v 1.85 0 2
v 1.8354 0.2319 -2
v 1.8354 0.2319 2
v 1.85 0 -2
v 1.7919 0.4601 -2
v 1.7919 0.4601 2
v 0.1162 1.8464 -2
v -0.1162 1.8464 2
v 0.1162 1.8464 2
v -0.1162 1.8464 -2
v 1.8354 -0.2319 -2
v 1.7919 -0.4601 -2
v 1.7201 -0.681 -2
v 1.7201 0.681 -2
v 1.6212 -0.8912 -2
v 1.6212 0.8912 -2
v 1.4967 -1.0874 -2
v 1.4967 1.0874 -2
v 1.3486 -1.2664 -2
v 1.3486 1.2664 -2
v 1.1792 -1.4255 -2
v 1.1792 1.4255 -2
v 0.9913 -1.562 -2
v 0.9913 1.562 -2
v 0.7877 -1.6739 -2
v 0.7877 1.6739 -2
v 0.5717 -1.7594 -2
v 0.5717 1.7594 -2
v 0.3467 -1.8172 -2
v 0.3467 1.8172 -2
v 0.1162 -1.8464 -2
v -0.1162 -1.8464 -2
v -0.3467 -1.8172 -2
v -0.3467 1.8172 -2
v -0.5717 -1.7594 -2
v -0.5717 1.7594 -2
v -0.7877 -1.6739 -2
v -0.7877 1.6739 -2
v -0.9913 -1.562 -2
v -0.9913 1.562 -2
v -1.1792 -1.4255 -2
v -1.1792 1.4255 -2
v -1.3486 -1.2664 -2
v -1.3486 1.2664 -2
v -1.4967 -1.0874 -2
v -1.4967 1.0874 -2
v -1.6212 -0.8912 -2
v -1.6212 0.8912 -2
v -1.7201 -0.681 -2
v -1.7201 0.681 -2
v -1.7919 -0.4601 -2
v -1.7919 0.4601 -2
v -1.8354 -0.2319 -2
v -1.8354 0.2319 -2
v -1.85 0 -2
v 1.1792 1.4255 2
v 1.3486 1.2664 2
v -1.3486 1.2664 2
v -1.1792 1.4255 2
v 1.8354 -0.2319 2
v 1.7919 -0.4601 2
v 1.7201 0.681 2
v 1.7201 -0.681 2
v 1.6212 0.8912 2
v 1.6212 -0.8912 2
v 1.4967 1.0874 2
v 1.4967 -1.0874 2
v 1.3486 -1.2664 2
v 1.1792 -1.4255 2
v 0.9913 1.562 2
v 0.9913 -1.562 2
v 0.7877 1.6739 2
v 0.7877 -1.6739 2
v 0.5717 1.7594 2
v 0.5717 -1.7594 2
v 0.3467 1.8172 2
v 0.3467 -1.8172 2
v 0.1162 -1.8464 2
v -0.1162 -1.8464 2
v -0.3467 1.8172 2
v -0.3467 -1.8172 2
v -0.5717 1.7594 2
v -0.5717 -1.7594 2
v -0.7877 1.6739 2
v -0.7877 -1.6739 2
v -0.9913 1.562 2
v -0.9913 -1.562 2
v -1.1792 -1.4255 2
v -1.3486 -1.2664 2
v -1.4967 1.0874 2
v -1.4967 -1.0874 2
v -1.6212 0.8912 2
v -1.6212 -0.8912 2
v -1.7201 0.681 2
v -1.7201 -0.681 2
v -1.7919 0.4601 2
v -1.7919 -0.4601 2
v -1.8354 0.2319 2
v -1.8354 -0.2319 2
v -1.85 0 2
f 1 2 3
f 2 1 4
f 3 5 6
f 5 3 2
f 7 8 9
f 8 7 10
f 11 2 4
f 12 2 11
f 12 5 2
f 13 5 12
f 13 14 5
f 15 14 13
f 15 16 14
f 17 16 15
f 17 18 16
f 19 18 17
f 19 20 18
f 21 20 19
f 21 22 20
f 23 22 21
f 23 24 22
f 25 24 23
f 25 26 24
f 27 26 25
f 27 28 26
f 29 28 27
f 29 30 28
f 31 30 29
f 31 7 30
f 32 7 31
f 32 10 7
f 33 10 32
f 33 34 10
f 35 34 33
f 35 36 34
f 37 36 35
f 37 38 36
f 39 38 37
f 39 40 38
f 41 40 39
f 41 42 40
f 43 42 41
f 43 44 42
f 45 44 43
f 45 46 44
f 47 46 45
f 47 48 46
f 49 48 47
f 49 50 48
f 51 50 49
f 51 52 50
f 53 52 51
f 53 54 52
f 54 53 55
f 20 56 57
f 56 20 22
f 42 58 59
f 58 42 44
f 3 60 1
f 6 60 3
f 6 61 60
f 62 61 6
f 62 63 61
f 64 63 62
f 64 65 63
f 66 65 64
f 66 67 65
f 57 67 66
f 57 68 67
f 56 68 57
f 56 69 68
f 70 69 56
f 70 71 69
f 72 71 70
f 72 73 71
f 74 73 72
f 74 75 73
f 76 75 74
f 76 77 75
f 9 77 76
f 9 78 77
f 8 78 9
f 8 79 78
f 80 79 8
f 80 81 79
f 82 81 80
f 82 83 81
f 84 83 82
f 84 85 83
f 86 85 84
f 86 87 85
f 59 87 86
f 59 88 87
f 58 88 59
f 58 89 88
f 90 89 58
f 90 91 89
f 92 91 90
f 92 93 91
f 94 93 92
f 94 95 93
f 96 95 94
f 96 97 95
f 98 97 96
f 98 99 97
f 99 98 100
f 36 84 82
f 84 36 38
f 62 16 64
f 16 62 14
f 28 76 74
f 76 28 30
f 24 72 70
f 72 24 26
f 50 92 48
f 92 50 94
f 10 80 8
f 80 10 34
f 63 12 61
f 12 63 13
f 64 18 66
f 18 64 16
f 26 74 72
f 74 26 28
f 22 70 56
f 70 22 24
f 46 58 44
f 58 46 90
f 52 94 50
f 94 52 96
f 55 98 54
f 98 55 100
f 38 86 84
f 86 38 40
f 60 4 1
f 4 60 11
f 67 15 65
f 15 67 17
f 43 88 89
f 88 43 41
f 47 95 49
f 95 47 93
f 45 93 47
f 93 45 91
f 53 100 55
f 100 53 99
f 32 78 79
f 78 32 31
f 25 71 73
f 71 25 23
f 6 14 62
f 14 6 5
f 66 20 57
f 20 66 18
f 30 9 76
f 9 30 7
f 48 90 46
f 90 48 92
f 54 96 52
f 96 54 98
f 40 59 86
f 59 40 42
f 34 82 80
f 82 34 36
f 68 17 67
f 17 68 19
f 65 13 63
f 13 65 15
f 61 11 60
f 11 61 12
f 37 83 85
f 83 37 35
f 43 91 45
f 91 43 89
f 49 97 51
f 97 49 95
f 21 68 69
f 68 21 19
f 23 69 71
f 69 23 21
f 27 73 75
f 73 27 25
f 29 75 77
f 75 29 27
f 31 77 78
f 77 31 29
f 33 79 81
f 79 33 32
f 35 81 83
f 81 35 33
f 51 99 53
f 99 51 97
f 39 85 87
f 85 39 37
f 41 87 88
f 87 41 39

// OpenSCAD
$fn = 50;


difference() {
	union() {
		translate(v = [0, 0, -2.0000000000]) {
			cylinder(h = 4, r = 1.8500000000);
		}
	}
	union() {
		translate(v = [0, 0, -100.0000000000]) {
			cylinder(h = 200, r = 0);
		}
	}
}
